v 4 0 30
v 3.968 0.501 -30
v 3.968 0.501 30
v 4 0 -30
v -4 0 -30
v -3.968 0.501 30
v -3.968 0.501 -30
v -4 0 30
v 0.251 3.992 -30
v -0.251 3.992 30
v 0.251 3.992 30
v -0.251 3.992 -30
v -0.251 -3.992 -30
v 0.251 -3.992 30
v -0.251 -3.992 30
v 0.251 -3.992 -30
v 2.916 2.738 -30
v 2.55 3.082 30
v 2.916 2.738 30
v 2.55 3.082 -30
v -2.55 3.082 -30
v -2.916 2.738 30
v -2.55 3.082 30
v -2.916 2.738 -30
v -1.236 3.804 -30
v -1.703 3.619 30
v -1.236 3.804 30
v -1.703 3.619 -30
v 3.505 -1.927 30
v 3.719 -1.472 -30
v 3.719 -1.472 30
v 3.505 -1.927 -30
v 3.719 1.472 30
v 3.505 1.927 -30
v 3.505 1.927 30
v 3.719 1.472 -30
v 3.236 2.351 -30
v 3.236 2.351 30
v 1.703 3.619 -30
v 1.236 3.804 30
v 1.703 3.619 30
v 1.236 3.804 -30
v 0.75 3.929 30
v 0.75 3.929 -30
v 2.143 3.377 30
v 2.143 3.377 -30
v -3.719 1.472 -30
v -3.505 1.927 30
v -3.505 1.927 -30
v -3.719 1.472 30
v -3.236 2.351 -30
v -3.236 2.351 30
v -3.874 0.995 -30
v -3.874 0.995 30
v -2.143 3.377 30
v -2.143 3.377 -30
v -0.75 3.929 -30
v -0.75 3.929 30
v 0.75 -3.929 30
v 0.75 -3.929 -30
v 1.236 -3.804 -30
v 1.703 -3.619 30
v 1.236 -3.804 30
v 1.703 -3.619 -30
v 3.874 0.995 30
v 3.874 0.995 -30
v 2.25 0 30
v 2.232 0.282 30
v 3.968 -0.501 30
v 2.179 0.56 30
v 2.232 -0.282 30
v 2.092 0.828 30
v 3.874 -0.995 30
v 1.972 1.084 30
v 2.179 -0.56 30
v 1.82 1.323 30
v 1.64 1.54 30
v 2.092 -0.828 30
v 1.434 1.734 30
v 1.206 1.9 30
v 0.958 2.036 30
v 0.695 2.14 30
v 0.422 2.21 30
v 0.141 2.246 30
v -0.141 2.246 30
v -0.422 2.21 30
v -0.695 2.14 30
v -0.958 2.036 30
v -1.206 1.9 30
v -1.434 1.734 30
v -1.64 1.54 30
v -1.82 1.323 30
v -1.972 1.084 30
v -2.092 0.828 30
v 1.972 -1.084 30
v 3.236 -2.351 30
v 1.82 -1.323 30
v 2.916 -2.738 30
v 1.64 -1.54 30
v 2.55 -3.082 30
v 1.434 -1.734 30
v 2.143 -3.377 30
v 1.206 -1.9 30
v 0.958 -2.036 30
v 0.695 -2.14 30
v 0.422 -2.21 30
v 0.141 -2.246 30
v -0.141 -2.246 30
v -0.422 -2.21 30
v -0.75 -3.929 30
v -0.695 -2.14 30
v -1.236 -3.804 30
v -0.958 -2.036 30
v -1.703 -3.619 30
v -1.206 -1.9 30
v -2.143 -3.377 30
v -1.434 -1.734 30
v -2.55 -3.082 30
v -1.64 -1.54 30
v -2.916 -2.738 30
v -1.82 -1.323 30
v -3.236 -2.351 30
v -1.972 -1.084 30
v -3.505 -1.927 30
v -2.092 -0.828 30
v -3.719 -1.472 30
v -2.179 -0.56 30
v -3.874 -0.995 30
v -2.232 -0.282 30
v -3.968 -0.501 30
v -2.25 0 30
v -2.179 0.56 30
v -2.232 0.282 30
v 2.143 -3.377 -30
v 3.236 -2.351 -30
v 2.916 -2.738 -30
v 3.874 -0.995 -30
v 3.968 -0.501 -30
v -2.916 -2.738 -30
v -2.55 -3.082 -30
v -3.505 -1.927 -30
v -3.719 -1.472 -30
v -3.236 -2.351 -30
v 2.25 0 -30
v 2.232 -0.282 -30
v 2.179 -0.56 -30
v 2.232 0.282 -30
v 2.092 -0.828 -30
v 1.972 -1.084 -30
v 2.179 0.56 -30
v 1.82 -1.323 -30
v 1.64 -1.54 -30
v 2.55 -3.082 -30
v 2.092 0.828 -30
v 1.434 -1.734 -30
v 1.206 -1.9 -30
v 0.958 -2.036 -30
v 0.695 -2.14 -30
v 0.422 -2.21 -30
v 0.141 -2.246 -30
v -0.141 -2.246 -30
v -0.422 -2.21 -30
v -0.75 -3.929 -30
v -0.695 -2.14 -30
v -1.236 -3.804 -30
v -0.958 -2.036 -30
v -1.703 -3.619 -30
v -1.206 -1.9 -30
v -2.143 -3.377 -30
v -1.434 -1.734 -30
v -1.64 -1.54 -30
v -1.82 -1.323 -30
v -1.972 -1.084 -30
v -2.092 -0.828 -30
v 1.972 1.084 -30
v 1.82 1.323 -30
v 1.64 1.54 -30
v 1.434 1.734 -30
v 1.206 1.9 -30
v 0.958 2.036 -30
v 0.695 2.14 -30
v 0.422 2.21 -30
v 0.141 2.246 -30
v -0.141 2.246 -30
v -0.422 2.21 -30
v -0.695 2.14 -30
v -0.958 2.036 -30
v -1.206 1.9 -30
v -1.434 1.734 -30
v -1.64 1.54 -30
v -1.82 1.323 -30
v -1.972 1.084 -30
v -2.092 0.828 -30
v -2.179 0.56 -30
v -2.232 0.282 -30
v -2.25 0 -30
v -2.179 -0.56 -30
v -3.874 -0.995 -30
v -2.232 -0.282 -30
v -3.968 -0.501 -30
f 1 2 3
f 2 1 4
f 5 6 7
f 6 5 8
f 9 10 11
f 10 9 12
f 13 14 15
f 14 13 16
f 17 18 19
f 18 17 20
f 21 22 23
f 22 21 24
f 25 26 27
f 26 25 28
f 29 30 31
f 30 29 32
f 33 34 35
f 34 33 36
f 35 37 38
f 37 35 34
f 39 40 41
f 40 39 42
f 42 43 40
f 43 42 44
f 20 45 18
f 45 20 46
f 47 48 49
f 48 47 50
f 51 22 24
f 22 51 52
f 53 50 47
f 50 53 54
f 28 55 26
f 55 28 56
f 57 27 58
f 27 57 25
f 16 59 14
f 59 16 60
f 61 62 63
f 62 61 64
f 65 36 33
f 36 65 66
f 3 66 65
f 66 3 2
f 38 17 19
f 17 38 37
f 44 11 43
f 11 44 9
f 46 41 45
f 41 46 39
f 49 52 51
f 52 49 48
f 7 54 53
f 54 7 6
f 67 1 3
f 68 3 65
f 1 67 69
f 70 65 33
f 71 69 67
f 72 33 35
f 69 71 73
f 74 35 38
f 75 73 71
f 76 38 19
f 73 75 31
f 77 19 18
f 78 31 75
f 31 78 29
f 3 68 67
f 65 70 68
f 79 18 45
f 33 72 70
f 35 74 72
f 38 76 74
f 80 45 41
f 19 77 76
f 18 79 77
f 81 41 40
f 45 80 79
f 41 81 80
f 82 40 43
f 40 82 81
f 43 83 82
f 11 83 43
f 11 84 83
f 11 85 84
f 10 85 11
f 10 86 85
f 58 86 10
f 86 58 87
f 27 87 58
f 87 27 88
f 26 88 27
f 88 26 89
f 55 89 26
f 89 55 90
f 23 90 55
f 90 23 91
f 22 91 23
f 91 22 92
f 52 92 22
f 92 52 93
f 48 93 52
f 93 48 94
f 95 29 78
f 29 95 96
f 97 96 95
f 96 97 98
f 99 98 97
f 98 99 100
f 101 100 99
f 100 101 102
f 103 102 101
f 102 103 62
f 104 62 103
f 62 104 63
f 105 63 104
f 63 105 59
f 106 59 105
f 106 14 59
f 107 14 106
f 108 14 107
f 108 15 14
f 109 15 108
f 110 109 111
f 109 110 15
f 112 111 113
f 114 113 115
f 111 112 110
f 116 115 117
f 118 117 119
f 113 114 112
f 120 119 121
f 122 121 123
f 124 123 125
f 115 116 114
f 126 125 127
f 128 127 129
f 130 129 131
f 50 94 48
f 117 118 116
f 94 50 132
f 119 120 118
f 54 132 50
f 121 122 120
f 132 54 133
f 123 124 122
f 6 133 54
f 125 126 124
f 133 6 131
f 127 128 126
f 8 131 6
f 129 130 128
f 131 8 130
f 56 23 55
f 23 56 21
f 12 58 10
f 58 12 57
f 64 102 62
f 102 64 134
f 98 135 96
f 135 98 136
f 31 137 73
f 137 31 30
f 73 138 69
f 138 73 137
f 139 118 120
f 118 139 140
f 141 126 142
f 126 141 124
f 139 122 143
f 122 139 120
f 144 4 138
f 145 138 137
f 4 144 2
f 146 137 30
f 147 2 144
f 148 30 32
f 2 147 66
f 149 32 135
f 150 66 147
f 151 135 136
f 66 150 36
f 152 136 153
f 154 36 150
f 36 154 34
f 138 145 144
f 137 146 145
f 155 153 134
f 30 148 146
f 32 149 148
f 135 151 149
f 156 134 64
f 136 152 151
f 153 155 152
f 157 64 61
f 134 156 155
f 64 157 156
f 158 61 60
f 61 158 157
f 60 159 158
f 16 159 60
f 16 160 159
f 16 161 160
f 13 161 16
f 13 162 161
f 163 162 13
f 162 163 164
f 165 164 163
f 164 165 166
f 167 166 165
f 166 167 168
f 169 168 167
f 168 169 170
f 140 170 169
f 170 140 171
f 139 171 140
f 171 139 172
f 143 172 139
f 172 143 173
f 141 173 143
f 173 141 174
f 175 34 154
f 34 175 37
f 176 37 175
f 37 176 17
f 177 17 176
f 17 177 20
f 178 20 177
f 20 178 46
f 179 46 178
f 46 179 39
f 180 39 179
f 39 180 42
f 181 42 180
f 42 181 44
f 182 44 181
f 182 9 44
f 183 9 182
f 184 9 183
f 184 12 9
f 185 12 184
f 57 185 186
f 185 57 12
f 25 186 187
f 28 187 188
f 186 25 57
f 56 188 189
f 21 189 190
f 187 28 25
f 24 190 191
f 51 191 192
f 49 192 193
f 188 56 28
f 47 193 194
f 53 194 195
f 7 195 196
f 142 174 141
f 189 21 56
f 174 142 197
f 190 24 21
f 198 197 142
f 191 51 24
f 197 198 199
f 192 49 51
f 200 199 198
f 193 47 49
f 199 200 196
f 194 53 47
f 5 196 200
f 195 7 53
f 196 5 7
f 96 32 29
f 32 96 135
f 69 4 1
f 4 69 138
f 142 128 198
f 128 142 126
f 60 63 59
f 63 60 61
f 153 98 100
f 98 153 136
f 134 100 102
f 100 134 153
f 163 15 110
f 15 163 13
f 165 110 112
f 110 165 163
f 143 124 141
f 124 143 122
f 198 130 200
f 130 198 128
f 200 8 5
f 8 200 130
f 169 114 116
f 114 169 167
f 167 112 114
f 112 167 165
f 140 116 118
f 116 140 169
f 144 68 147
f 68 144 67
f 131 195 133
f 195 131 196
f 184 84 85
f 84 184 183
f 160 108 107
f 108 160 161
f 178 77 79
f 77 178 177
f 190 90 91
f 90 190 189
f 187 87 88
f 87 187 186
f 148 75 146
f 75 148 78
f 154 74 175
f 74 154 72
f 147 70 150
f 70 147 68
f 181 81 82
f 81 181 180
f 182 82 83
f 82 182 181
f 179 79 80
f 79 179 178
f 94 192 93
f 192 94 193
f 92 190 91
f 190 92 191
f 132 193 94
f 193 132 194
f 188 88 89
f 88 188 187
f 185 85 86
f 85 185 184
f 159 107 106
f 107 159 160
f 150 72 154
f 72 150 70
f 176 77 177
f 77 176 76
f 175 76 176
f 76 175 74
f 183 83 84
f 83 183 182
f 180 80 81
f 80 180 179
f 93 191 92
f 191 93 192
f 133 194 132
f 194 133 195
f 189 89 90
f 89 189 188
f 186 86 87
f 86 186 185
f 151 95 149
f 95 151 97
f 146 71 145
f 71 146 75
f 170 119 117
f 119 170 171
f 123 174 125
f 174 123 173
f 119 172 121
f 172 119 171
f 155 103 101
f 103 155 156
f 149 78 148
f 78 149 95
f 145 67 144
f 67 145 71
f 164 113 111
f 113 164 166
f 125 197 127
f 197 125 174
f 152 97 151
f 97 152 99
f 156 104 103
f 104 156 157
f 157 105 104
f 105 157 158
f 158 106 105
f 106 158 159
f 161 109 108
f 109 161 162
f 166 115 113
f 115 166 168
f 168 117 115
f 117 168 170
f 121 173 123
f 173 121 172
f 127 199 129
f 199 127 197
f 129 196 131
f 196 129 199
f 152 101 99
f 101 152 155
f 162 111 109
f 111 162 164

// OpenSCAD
$fn = 50;


difference() {
	union() {
		translate(v = [0, 0, -30.0000000000]) {
			cylinder(h = 60, r = 4.0000000000);
		}
	}
	union() {
		translate(v = [0, 0, -100.0000000000]) {
			cylinder(h = 200, r = 2.2500000000);
		}
	}
}
